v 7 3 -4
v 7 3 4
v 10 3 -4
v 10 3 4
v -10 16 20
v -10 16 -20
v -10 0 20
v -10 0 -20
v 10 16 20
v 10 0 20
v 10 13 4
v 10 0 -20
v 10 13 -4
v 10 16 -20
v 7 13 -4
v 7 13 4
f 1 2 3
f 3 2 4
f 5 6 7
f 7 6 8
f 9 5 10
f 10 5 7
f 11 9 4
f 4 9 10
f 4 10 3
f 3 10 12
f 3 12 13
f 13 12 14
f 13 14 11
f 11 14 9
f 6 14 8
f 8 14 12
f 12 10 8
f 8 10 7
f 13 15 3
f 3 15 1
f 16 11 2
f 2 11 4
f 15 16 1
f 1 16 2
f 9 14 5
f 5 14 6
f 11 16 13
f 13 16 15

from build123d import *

# Parameters (mm, degrees)
SKETCH1_W           = 20
SKETCH1_H           = 40
BOSS_EXTRUDE1_DEPTH = 3
BOSS_EXTRUDE2_DEPTH = 10
SKETCH4_W           = 20
SKETCH4_H           = 40
BOSS_EXTRUDE3_DEPTH = 3


with BuildPart() as part:
    # Sketch1 → Boss-Extrude1 (new body)
    with BuildSketch(Plane(origin=(0, 0, 0), x_dir=(1, 0, 0), z_dir=(0, 1, 0))):
        Rectangle(SKETCH1_W, SKETCH1_H)
    extrude(amount=BOSS_EXTRUDE1_DEPTH)

    # Sketch2 → Boss-Extrude2 (add)
    with BuildSketch(Plane(origin=(0, 3, 0), x_dir=(1, 0, 0), z_dir=(0, 1, 0))):
        Polygon((-10, -20), (10, -20), (10, -4), (7, -4), (7, 0), (7, 4), (10, 4), (10, 20), (-10, 20), align=None)
    extrude(amount=BOSS_EXTRUDE2_DEPTH)

    # Sketch4 → Boss-Extrude3 (add)
    with BuildSketch(Plane(origin=(0, 13, 0), x_dir=(1, 0, 0), z_dir=(0, 1, 0))):
        Rectangle(SKETCH4_W, SKETCH4_H)
    extrude(amount=BOSS_EXTRUDE3_DEPTH)


solid = part.part
